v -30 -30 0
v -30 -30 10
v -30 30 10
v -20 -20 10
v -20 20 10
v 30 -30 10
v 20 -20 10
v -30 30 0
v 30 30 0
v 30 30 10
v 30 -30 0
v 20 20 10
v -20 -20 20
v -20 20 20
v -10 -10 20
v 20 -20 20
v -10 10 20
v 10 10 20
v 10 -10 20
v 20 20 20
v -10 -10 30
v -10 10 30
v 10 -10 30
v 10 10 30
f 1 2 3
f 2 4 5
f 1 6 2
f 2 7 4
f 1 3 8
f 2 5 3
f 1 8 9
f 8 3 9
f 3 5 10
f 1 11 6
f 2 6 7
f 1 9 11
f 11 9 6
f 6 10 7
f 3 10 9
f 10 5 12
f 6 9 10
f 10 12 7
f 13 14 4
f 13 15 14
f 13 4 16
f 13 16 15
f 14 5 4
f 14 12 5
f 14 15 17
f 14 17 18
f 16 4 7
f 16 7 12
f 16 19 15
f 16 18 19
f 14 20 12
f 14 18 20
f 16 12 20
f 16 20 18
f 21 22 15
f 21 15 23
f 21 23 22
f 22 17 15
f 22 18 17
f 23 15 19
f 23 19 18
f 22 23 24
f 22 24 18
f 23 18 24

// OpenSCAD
// 3段の階段状ピラミッド
step_height = 10;          // 各段の高さ
sizes = [60, 40, 20];      // 各段の一辺の長さ（下から順）

for (i = [0 : len(sizes) - 1]) {
    translate([0, 0, i * step_height + step_height / 2])
        cube([sizes[i], sizes[i], step_height], center = true);
}
